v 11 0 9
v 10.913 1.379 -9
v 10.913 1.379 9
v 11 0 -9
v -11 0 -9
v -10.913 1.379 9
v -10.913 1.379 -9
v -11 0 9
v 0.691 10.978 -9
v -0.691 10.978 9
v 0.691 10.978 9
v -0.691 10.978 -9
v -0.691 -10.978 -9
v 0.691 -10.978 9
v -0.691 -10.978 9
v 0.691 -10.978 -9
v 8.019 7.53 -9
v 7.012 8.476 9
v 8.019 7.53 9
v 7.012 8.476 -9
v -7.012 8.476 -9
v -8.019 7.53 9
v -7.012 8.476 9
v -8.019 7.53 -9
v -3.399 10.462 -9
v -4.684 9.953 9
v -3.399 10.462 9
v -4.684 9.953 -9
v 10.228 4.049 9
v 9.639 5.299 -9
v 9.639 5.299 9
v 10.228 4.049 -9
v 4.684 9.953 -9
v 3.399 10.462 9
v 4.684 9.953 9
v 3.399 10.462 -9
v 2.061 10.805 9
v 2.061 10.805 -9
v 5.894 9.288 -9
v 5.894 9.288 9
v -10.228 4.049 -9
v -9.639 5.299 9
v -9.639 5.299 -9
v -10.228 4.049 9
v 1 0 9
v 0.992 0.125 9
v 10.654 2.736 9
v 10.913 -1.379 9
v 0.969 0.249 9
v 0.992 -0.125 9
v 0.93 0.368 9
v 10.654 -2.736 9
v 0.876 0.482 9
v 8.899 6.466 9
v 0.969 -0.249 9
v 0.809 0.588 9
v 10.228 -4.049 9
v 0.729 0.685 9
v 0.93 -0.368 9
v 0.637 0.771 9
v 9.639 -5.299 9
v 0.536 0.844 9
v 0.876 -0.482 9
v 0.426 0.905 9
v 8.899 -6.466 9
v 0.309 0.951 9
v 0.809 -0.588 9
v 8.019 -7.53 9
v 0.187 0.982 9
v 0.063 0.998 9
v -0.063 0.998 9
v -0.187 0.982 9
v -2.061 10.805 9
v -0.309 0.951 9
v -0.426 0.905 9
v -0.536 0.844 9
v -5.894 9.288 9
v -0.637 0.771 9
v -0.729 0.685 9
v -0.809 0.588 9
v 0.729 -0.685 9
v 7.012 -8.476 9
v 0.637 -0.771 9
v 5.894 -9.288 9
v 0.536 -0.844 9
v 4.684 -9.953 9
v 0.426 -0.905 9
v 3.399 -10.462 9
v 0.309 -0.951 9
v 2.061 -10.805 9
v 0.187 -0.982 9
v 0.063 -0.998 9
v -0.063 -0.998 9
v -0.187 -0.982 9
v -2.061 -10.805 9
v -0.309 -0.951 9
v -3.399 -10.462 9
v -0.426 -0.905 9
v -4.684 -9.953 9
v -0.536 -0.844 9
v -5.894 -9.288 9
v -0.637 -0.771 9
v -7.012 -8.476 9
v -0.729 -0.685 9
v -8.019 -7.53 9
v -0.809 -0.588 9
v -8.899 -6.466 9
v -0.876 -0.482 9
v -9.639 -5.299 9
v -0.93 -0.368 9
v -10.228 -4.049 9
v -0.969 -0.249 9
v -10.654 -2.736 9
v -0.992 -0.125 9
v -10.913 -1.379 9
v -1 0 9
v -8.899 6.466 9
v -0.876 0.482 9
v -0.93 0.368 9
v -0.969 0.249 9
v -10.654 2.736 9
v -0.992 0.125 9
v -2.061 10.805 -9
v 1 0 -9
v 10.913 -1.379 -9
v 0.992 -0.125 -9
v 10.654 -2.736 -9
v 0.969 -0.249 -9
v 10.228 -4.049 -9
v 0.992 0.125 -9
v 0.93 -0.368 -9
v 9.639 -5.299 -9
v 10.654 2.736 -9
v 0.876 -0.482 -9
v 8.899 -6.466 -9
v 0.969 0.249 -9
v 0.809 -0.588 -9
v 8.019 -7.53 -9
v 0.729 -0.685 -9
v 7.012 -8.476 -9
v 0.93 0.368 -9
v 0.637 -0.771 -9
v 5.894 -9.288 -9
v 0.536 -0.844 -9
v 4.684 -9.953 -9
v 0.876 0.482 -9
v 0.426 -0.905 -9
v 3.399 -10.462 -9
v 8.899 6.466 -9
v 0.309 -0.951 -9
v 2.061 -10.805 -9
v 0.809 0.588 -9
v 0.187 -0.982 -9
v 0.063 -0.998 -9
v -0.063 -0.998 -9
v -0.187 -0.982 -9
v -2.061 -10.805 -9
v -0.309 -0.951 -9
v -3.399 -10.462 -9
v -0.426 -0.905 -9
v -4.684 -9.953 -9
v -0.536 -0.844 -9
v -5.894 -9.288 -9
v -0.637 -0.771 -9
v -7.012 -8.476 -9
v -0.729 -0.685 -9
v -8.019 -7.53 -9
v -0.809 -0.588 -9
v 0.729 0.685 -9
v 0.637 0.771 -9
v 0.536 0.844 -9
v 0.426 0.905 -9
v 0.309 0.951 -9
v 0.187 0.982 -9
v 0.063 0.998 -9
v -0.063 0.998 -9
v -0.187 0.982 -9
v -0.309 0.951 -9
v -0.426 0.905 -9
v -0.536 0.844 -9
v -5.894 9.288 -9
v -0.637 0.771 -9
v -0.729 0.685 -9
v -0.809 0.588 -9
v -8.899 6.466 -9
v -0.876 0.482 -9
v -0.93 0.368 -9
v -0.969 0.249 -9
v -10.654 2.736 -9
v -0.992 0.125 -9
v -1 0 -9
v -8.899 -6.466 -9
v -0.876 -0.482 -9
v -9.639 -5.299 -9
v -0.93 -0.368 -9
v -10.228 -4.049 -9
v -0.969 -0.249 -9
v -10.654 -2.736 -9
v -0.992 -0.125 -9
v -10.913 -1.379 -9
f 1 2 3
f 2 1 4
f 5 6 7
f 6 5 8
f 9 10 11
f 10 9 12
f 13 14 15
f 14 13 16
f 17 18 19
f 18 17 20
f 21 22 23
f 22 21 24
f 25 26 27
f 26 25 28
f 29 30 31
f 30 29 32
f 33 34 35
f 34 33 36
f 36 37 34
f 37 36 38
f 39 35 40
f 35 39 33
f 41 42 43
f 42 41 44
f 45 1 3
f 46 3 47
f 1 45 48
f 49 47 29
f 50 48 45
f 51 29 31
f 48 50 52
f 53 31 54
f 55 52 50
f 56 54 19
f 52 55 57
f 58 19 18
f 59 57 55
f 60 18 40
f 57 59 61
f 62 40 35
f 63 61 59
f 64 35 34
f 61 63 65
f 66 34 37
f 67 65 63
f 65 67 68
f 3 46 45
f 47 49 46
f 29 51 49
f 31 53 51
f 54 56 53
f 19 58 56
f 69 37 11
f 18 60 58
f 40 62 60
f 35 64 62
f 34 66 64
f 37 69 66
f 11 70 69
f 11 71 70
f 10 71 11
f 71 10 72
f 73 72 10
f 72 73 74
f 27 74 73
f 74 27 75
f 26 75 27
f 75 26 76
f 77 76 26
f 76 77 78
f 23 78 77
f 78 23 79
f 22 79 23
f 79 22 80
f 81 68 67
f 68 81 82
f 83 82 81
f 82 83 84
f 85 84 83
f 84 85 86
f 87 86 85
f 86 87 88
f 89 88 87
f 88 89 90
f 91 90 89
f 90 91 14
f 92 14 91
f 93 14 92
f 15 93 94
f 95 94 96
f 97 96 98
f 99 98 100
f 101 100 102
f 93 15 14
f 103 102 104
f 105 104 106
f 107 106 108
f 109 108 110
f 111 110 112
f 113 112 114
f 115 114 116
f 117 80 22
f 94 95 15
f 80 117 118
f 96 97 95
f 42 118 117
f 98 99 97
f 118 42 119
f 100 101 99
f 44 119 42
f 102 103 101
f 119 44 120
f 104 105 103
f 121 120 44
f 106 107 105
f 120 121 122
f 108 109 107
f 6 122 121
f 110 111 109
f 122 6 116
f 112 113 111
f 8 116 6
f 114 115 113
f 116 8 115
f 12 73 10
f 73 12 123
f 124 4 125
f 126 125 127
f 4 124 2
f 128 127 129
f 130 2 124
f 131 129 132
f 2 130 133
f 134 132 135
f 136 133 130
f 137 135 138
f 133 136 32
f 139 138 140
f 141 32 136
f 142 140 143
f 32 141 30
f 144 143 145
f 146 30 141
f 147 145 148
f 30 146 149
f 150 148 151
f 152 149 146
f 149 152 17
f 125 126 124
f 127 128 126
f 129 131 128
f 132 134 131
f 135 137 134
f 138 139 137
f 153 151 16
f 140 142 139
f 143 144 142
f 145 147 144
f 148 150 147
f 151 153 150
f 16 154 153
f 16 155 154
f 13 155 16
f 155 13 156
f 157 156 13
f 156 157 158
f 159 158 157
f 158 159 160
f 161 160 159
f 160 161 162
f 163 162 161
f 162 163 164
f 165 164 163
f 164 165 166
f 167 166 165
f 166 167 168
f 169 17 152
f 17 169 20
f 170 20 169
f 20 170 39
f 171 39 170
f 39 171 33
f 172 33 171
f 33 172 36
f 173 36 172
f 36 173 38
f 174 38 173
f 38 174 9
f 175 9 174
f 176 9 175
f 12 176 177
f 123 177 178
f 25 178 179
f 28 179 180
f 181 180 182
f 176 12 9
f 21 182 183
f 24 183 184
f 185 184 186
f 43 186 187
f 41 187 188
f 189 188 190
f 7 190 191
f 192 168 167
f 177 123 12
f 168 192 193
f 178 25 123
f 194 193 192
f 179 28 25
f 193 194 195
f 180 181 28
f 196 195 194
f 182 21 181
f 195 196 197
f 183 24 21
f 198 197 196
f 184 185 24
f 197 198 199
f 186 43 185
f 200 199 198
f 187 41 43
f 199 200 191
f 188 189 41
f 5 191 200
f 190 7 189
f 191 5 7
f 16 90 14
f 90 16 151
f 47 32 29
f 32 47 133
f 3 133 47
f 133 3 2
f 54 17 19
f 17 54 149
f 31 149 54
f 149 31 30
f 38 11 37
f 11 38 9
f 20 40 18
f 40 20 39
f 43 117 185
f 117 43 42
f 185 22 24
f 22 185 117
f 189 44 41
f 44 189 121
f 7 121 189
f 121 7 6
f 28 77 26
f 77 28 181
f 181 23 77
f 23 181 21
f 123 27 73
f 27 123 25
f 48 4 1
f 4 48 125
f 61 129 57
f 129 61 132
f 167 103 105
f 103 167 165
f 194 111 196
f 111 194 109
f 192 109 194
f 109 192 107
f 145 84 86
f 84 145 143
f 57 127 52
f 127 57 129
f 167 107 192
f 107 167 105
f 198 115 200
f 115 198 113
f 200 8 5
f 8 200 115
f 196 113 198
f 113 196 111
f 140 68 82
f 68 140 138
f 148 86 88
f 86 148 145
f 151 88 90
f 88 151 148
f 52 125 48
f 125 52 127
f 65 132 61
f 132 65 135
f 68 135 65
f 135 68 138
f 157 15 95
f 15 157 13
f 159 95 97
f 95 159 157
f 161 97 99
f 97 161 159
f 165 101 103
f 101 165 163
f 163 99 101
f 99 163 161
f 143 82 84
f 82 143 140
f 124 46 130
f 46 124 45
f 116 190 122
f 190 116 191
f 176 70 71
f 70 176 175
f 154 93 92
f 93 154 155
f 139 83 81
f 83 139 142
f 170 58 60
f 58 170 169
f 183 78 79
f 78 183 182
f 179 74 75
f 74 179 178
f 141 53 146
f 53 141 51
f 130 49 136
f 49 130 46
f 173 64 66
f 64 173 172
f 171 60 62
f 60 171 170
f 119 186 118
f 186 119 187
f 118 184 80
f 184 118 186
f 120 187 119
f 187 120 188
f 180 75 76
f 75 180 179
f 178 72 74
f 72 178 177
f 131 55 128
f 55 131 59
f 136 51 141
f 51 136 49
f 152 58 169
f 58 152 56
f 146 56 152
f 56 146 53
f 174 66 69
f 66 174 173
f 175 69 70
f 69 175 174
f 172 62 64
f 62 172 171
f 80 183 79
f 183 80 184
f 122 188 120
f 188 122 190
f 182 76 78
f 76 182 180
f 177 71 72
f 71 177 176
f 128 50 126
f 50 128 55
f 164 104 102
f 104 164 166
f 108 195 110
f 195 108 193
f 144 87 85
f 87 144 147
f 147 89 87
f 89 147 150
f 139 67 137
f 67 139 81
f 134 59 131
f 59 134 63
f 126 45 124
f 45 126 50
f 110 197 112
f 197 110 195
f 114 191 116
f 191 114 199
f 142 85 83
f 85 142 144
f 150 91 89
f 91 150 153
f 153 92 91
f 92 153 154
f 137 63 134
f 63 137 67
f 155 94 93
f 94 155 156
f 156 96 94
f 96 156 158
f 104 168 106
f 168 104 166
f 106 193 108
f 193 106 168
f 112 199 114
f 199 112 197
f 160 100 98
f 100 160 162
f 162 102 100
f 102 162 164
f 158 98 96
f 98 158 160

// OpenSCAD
$fn = 50;


difference() {
	union() {
		translate(v = [0, 0, -9.0000000000]) {
			cylinder(h = 18, r = 11.0000000000);
		}
	}
	union() {
		translate(v = [0, 0, -100.0000000000]) {
			cylinder(h = 200, r = 1.0000000000);
		}
	}
}
